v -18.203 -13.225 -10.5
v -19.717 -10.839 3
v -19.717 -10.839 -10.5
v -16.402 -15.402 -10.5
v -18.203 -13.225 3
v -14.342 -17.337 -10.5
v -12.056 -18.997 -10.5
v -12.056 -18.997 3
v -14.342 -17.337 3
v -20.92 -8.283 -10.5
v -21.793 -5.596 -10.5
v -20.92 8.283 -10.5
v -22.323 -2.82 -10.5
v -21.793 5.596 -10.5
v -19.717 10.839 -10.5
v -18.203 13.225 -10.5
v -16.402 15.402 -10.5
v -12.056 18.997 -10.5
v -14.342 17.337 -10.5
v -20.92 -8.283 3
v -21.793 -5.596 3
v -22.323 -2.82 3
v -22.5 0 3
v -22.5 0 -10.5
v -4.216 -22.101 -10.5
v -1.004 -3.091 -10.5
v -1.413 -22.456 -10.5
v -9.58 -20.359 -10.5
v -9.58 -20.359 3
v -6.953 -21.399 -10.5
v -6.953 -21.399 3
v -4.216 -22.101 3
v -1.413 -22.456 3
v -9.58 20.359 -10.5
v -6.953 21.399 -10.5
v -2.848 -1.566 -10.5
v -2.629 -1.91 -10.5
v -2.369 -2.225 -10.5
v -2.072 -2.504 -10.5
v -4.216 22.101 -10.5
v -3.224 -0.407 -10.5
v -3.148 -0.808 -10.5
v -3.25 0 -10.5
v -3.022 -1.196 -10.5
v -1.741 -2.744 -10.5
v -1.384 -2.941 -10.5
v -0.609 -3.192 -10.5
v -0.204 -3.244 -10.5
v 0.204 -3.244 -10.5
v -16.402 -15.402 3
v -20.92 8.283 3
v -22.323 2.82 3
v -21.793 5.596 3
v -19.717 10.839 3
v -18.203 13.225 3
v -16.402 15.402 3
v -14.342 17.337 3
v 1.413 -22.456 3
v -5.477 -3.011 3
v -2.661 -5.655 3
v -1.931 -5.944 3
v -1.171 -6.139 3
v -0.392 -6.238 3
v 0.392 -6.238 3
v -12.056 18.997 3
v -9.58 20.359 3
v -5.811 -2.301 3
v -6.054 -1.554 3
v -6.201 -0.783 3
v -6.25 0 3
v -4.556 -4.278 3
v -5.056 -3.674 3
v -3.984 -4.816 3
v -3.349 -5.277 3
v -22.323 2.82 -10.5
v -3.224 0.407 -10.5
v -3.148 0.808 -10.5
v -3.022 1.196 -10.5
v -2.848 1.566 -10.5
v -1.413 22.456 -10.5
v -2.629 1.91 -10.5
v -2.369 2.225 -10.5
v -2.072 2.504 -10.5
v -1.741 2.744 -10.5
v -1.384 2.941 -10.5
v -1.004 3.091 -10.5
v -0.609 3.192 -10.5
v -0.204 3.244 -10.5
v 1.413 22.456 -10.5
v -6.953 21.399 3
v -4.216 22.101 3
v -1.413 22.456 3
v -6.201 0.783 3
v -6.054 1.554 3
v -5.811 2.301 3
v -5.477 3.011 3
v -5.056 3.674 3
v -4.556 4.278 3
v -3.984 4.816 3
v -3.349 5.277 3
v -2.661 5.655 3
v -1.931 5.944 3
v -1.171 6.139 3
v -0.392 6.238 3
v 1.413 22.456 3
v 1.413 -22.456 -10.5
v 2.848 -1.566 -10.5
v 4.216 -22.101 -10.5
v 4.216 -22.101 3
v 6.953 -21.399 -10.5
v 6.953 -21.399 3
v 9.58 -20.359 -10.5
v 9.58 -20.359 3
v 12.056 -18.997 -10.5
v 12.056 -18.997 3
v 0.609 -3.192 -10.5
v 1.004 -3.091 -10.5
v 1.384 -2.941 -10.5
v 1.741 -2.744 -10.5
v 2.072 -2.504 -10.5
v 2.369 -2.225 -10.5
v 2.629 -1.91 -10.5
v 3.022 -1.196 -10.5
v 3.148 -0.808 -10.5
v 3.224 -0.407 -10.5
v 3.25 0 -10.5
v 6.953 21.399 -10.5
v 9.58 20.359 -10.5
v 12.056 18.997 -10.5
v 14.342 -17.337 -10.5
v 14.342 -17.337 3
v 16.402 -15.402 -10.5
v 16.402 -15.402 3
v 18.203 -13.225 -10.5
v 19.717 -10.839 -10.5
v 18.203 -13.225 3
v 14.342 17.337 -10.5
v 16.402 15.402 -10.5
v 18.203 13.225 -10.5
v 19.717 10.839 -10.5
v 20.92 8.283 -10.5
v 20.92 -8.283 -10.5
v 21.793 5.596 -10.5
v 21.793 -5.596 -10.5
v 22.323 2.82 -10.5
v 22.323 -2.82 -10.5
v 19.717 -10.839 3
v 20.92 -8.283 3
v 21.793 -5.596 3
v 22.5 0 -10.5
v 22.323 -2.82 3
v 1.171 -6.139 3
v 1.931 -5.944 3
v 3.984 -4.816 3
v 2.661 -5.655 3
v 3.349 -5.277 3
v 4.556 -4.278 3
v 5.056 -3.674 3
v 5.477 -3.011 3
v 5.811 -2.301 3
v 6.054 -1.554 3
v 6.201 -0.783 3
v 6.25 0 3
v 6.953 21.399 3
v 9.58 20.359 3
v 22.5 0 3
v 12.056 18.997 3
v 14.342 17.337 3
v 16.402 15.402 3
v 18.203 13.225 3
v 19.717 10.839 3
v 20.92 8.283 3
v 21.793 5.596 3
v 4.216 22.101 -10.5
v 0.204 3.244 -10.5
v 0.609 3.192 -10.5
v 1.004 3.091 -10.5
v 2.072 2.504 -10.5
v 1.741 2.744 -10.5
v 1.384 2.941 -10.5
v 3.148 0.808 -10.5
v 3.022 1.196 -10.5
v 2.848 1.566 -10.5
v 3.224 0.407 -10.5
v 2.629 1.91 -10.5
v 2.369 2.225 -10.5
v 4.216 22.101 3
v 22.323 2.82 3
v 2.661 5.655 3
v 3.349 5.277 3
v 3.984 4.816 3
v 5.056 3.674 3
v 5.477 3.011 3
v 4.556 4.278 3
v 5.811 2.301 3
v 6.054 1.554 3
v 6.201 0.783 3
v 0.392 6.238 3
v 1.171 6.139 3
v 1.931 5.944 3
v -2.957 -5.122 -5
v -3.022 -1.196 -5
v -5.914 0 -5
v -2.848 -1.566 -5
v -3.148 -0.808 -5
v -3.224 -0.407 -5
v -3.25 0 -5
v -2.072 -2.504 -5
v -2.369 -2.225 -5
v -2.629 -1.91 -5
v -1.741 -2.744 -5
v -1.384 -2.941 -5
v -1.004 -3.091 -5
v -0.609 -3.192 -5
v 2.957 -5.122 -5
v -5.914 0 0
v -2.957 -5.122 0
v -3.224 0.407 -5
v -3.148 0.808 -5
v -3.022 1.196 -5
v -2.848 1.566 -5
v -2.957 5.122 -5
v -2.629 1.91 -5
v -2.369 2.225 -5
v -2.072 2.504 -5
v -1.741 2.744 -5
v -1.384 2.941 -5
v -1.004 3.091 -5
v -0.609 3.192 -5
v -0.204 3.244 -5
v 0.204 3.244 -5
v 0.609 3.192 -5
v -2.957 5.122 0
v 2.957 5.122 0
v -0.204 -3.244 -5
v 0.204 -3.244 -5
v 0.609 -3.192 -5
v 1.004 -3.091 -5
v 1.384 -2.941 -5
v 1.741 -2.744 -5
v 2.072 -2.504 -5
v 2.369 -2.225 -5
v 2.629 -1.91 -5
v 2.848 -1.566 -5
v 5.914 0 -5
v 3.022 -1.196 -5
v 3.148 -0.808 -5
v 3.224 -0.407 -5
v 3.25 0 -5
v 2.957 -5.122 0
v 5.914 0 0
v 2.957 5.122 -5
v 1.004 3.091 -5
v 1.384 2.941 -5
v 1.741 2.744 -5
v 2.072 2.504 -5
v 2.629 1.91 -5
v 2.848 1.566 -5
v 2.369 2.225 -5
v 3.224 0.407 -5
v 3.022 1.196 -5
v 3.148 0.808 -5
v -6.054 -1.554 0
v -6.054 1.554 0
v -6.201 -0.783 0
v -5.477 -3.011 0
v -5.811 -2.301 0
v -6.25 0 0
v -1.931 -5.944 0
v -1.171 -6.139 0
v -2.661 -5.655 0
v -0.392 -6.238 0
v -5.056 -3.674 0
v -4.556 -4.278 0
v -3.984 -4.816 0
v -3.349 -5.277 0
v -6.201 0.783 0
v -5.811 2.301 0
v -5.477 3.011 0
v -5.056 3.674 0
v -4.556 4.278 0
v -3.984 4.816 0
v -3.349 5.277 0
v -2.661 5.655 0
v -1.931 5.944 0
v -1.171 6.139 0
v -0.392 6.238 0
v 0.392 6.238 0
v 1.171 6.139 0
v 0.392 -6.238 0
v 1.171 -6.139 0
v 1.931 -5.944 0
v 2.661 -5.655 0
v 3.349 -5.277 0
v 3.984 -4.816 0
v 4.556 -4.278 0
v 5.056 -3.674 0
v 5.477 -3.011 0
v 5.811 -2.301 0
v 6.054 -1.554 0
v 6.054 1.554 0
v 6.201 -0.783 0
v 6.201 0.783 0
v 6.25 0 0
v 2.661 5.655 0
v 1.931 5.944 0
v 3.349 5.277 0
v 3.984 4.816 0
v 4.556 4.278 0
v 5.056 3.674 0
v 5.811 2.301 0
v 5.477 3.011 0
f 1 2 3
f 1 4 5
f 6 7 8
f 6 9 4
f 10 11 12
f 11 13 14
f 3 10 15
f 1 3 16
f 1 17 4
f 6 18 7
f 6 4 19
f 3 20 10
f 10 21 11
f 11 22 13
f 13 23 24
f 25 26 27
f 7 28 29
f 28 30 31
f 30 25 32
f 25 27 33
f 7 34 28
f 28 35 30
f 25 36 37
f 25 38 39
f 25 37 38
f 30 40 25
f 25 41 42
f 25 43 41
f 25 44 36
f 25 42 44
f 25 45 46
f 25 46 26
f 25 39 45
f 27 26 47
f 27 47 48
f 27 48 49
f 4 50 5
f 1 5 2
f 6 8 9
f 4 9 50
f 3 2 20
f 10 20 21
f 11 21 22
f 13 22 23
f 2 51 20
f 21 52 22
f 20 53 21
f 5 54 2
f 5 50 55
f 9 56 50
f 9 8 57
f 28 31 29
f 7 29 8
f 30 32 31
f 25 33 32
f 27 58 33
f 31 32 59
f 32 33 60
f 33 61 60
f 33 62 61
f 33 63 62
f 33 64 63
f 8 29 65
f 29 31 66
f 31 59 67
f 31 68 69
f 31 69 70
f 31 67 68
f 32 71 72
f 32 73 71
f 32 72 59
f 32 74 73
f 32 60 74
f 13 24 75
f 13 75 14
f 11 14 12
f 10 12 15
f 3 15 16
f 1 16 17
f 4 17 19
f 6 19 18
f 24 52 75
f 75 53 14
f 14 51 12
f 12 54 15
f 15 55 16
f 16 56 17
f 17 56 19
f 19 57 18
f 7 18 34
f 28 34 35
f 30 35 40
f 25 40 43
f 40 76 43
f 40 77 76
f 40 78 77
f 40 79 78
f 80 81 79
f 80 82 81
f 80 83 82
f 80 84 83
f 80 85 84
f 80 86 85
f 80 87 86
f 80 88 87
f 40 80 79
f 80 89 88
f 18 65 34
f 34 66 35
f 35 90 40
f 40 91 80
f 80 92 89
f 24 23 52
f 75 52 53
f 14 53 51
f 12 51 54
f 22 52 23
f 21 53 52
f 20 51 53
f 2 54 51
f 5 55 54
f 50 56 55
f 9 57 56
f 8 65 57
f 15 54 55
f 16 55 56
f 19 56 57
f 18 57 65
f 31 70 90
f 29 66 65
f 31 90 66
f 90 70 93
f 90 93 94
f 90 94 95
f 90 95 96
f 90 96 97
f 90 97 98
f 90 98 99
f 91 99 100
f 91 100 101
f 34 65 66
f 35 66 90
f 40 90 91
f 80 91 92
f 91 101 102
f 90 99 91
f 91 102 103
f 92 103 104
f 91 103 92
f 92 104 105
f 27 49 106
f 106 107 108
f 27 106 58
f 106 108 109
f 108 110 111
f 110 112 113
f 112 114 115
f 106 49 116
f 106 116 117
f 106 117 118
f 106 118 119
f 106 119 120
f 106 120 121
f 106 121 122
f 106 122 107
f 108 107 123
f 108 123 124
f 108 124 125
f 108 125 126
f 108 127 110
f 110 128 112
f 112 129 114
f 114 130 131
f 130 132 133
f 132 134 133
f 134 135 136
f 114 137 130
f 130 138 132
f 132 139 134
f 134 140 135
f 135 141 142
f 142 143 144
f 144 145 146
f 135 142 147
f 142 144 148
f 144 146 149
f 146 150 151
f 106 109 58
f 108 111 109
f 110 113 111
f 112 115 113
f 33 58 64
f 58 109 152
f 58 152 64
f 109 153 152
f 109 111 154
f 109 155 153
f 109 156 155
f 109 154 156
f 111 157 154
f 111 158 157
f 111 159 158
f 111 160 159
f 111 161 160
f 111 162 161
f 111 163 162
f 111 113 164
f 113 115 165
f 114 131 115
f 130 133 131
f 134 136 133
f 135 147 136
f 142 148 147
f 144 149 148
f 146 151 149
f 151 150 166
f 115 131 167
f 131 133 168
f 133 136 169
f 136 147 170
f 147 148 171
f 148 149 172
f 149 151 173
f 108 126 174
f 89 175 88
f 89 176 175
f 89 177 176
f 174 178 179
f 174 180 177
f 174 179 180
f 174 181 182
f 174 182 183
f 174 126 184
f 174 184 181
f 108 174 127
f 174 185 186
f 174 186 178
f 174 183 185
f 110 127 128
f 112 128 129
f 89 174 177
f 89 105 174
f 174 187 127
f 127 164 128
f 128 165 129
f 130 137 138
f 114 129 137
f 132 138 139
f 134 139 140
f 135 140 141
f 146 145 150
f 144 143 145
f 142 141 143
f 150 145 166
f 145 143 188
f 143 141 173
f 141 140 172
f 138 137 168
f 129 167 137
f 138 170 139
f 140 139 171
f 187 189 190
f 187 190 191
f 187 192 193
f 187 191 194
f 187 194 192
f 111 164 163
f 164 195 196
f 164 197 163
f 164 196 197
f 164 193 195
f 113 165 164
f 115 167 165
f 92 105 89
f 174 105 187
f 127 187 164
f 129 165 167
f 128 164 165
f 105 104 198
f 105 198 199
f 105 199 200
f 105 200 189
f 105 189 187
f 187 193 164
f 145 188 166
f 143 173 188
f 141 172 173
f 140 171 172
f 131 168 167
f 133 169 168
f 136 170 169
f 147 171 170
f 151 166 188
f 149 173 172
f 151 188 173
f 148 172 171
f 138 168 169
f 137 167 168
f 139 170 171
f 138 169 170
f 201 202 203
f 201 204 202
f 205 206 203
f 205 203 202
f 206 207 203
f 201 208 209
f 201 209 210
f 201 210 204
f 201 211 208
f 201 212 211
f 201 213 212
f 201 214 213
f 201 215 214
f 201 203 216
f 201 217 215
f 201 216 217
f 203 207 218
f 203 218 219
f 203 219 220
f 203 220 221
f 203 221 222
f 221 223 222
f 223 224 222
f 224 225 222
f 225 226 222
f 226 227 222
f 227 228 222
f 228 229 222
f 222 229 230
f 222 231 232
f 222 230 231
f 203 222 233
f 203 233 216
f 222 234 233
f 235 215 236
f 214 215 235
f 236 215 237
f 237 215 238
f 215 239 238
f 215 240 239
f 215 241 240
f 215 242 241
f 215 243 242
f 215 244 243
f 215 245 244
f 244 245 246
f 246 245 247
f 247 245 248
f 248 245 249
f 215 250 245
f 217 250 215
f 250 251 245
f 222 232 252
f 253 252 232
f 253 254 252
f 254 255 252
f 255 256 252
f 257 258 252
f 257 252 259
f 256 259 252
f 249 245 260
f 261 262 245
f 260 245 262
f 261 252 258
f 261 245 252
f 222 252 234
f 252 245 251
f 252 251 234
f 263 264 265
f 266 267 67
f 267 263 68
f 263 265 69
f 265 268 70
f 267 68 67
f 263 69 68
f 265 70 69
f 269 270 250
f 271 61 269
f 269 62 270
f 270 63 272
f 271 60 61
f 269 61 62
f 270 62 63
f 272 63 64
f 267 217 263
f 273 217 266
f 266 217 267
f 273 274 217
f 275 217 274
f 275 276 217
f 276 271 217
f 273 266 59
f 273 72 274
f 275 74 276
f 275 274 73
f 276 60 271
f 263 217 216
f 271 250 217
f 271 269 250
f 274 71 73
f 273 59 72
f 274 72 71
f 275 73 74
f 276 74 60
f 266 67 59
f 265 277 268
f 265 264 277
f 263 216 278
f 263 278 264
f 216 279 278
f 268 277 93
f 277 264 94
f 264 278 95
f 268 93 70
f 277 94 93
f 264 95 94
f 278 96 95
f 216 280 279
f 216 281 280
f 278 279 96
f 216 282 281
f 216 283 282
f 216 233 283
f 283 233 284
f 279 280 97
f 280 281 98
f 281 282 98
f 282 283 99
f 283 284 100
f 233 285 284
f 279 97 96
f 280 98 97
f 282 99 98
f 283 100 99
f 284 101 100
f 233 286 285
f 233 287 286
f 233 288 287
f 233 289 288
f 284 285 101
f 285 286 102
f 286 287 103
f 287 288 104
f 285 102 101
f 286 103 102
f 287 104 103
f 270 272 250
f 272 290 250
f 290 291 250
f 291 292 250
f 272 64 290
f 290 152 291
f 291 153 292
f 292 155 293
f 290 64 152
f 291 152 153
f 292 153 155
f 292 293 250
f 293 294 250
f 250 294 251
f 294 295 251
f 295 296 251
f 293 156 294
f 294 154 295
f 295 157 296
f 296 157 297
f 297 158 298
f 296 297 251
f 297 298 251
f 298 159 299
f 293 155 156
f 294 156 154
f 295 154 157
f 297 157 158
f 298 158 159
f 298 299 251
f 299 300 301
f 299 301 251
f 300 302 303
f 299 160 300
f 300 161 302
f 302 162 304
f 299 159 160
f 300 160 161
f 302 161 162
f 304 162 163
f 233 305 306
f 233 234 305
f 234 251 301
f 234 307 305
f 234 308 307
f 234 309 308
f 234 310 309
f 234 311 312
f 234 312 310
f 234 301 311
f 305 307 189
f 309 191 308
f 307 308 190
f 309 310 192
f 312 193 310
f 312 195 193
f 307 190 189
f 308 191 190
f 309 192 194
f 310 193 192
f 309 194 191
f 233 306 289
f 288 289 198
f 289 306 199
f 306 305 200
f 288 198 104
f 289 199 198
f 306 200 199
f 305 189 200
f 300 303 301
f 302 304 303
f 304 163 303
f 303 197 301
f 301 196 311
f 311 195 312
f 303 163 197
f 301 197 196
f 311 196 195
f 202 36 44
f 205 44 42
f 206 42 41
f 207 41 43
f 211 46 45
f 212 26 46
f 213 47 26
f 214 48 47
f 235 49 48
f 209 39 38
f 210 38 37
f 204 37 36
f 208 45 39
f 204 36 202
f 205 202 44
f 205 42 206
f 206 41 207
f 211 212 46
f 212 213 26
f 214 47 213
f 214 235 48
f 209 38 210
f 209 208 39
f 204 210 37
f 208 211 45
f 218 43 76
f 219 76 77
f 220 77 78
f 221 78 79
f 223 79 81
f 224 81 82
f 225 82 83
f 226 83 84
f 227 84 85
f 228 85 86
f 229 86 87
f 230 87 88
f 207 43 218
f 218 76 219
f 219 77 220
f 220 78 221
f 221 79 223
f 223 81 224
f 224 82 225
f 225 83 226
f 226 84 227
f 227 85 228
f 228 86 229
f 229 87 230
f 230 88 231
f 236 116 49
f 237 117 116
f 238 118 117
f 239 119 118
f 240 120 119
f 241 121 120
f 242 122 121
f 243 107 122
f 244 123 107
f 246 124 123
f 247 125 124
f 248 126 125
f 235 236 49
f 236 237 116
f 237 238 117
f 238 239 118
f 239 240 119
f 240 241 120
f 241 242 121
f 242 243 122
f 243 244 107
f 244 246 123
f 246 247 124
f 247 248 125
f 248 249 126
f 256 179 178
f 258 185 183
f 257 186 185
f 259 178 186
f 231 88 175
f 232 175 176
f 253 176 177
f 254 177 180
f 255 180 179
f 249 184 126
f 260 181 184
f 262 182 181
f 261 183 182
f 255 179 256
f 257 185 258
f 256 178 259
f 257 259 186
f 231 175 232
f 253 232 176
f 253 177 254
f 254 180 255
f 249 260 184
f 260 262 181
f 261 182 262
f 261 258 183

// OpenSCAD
$fn = 50;

difference() {
	union() {
		translate(v = [0, 0, -10.5]) {
			cylinder(h = 13.5, r = 22.5);
		}
		#translate(v = [0, 0, -12.0]) {
			cylinder(h = 12, r = 2.875);
		}
	}
	union() {
		translate(v = [0, 0, 0]) {
			rotate(a = [0, 0, 0]) {
				difference() {
					union() {
						translate(v = [0, 0, -5]) {
							linear_extrude(height = 5) {
								polygon(points = [[5.914249999999999, 0.0], [2.957125, 5.1218907443321156], [-2.9571249999999982, 5.1218907443321156], [-5.914249999999999, 7.242867331857232e-16], [-2.9571250000000022, -5.121890744332115], [2.9571249999999956, -5.121890744332118]]);
							}
						}
					}
					union();
				}
			}
		}
		#cylinder(h = 3, r = 6.25);
		#translate(v = [0, 0, -100.0]) {
			cylinder(h = 200, r = 3.25);
		}
	}
}
